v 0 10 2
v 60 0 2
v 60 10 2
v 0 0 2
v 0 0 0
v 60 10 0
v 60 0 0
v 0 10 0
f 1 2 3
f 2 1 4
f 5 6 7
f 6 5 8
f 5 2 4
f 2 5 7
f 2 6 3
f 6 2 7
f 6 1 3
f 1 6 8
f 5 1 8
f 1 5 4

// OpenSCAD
// Parameters for the teeth_plate
plate_length = 60;  // Length of the rectangular plate
plate_width = 10;   // Width of the rectangular plate
plate_thickness = 2; // Thickness of the rectangular plate
tooth_width = 8;    // Width of each tooth
tooth_height = 10;  // Height of each tooth
tooth_spacing = 7;  // Spacing between the teeth
num_teeth = 4;      // Number of teeth

module teeth_plate() {
    // Base plate
    cube([plate_length, plate_width, plate_thickness]);

    // Add teeth
    for (i = [0:num_teeth-1]) {
        translate([plate_length - (tooth_width + tooth_spacing) * (i + 1), plate_width, 0])
            cube([tooth_width, -tooth_height, plate_thickness]);
    }
}

// Render the teeth_plate
teeth_plate();
